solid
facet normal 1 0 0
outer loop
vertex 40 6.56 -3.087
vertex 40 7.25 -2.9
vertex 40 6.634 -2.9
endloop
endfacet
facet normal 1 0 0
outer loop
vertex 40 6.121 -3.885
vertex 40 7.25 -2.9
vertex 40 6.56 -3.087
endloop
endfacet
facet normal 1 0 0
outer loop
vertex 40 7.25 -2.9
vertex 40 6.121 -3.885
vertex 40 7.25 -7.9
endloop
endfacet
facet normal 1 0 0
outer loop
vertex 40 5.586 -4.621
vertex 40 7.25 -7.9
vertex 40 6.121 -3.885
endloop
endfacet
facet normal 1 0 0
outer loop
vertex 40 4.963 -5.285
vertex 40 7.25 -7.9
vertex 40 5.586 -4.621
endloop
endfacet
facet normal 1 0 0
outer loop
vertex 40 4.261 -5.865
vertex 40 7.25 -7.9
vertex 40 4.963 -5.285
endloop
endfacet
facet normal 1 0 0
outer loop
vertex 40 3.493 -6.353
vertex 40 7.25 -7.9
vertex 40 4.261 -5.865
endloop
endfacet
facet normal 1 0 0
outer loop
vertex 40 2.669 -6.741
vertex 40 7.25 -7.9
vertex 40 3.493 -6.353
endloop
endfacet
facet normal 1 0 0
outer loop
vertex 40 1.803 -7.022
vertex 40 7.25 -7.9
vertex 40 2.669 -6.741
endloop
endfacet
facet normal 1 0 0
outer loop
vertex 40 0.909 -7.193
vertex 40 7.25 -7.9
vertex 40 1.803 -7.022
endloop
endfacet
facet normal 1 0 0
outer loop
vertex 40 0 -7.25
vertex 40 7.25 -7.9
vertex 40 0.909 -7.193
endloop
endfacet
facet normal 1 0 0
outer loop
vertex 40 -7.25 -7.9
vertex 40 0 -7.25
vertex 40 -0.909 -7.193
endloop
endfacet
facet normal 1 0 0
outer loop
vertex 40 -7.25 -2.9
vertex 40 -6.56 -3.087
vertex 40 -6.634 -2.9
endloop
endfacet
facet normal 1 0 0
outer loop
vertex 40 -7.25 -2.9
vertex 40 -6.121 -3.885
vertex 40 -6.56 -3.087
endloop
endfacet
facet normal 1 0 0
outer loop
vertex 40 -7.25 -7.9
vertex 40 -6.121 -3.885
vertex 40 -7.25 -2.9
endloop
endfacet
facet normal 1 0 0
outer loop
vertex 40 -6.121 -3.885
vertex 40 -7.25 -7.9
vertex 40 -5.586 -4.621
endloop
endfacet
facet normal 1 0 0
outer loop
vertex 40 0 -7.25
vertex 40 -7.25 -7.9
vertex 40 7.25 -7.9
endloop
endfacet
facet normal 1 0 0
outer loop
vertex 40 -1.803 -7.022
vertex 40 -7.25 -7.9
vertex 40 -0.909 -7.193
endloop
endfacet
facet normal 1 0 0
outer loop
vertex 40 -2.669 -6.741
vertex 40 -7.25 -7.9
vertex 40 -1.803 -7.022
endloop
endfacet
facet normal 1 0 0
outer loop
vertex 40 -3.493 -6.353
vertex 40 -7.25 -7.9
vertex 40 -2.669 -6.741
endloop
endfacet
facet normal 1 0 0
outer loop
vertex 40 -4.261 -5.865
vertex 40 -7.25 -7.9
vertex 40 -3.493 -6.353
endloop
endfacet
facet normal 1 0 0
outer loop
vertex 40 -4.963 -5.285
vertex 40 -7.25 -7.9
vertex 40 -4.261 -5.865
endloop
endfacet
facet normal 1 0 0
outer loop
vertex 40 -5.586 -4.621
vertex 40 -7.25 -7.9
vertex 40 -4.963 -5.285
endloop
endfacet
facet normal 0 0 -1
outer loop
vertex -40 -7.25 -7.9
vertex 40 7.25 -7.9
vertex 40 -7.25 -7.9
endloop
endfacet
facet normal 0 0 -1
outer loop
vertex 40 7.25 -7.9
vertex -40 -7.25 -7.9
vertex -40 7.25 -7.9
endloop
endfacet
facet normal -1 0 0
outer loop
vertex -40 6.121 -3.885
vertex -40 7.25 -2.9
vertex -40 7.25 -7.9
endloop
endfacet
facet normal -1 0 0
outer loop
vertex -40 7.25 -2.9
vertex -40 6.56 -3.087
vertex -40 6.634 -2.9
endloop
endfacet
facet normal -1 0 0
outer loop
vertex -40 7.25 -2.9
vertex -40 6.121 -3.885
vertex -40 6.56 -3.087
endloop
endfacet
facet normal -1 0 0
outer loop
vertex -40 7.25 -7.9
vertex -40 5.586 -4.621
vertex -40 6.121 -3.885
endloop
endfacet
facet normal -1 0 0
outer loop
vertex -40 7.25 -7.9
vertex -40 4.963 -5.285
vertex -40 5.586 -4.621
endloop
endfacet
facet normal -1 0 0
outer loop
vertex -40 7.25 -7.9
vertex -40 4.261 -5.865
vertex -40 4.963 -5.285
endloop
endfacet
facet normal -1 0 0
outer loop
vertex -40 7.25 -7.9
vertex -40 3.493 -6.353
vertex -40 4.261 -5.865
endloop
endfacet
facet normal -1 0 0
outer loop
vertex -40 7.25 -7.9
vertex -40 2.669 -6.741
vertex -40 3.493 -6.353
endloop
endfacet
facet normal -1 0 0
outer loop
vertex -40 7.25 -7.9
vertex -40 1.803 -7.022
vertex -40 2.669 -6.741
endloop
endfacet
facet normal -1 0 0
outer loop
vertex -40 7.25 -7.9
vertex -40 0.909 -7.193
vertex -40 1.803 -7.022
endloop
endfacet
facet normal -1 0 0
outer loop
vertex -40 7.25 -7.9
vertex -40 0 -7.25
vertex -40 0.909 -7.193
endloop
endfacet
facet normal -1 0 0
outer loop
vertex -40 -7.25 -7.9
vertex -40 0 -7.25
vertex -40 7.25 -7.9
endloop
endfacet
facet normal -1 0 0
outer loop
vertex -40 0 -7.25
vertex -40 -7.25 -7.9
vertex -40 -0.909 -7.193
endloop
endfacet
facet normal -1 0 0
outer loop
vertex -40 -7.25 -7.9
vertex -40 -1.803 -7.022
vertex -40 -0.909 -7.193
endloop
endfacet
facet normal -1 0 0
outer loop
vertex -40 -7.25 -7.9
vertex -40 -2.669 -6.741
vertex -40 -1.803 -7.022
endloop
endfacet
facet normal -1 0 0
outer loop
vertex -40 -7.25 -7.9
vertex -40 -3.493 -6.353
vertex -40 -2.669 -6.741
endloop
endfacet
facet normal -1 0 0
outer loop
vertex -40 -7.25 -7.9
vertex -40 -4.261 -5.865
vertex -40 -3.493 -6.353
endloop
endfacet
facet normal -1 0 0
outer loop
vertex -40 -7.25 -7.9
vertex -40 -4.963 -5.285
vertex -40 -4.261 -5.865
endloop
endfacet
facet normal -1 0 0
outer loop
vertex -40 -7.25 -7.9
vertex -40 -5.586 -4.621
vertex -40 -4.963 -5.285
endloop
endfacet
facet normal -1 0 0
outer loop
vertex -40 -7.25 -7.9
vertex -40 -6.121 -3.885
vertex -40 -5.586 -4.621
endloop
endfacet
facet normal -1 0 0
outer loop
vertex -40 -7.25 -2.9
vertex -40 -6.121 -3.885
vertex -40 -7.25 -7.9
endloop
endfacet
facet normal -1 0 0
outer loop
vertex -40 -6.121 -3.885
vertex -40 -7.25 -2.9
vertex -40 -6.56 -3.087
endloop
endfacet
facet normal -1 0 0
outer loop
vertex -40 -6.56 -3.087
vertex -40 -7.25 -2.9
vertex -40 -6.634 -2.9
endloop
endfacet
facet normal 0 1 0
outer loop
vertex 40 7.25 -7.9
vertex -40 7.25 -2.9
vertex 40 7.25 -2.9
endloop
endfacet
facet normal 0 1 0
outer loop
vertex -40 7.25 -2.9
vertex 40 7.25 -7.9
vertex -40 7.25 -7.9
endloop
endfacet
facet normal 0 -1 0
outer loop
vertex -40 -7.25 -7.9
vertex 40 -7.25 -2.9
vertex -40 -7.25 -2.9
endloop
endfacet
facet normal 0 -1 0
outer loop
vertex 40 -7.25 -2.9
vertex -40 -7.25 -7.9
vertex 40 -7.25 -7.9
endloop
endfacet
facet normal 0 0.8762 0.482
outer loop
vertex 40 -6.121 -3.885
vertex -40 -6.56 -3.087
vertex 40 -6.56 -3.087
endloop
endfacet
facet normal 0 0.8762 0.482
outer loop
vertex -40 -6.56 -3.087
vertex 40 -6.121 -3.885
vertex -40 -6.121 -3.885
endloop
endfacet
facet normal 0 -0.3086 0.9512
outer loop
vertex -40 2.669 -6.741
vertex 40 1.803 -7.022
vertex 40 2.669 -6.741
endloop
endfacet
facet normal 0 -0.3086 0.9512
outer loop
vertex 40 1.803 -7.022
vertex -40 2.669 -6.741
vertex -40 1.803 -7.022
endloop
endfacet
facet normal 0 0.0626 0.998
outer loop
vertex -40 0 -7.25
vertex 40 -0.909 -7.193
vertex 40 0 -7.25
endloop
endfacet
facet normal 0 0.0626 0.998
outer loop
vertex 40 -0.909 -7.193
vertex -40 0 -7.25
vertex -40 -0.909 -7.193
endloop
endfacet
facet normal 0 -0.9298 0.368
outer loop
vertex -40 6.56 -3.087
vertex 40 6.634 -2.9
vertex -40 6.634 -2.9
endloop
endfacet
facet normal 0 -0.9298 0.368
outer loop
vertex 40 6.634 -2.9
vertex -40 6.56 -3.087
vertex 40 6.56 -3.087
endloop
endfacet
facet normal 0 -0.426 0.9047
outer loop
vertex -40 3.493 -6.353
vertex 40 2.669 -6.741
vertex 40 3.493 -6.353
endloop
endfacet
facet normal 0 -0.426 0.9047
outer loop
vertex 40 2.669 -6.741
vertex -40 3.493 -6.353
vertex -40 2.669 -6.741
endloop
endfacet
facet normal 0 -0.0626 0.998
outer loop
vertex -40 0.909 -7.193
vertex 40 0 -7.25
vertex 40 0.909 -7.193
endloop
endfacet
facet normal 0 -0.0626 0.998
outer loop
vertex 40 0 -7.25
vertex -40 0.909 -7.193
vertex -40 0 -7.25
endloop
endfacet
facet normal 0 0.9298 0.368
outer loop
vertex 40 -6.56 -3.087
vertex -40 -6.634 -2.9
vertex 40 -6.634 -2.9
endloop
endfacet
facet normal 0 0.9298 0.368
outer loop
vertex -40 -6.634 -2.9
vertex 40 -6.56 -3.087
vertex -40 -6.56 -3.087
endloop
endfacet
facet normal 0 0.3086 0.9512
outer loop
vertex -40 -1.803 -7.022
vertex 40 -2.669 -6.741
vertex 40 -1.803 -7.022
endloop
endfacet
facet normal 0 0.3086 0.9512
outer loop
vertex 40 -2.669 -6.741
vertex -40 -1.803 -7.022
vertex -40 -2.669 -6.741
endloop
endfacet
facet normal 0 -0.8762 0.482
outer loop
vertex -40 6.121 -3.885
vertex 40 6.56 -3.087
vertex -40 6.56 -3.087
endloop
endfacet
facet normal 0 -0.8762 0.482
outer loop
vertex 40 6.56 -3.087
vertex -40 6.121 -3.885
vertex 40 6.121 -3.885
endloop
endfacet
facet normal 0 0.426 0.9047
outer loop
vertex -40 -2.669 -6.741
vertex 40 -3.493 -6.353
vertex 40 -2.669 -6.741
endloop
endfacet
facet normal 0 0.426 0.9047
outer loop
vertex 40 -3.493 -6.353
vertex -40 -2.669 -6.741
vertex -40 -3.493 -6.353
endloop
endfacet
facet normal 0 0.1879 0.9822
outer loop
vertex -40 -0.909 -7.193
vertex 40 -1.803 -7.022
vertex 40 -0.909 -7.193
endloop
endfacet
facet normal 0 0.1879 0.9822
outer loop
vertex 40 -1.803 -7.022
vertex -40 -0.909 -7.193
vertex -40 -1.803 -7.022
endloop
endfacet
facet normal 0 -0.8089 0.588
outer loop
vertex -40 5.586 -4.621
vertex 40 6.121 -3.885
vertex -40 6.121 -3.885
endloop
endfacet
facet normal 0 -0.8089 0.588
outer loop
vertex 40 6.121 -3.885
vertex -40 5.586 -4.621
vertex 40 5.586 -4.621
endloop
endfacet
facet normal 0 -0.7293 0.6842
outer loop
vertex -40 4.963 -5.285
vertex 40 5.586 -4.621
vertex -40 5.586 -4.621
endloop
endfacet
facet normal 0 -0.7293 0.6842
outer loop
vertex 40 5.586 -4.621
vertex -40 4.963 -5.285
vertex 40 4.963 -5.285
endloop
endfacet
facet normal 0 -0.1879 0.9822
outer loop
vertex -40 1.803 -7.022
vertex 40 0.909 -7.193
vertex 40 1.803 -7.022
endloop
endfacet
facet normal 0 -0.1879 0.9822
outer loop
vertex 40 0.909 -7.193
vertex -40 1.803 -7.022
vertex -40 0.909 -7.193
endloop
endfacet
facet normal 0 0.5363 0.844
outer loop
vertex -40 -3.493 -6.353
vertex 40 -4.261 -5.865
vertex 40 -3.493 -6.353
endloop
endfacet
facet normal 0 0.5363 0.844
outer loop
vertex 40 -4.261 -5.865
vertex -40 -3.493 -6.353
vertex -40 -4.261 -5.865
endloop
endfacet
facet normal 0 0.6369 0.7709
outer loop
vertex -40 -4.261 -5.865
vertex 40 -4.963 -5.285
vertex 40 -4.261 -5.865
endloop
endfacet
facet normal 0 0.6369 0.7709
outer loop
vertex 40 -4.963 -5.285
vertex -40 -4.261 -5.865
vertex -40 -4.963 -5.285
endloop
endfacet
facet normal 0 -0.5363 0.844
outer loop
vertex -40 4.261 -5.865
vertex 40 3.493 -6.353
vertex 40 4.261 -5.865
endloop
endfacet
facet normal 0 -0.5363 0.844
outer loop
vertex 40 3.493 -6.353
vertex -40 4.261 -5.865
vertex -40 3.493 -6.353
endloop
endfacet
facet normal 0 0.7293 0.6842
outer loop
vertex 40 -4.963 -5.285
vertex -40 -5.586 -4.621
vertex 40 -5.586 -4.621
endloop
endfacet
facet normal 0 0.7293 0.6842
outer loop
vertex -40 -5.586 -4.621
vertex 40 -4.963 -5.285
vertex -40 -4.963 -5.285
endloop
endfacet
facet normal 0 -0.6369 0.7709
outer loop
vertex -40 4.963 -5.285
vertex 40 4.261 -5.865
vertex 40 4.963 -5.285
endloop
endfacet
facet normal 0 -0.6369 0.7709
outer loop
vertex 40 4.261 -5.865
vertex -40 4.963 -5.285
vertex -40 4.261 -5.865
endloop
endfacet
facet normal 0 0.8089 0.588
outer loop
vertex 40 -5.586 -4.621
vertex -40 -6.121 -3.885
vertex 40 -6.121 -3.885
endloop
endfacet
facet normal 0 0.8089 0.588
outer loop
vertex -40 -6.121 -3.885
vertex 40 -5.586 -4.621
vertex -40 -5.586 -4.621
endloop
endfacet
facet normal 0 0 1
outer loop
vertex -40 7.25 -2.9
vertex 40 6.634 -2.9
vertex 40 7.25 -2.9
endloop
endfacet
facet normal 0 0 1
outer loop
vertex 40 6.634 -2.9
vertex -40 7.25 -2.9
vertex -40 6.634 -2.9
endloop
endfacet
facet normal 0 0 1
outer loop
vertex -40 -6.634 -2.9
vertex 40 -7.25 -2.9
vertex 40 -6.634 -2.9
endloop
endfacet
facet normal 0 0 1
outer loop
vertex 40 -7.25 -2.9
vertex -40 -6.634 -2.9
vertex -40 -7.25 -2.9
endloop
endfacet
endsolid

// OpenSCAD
// file: scad-utils/mirror.scad
// Laser Tunnel -- Angled Mirror Holder
// Adrian McCarthy 2022

// A larger angle makes a wider cone of light. (degrees)
Angle = 5; // [3:1:20]

// The mirror should not be wider than the hub of the fan. (mm)
Mirror_Diameter = 25.4; // [20:0.2:27]

// The mirror should be thin and light. (mm)
Mirror_Thickness = 1.75; // [1:0.25:2]

// Some dimensions may be optimized for your printer's nozzle size, but the default value should work for most. (mm)
Nozzle_Diameter = 0.4;  // [0.1:0.1:0.8]

module angled_mirror_holder(angle=5, mirror_d=25.4, mirror_th=1.75, nozzle_d=0.4) {
    h = mirror_d;
    inner_d = mirror_d + nozzle_d;
    outer_d = inner_d + 2;
    box = sqrt(2)*outer_d;
    intersection() {
        r = inner_d/2;
        translate([r, 0, 0]) rotate([0, angle, 0]) translate([-r, 0, 0])
        difference() {
            translate([0, 0, mirror_th-h]) cylinder(d=outer_d, h=h);
            translate([0, 0, 0.1]) cylinder(d=inner_d, h=h);
        }

        translate([-box/2, -box/2, 0]) cube(box);
    }
}

angled_mirror_holder(Angle, Mirror_Diameter, Mirror_Thickness, Nozzle_Diameter, $fn=92);
// file: scad-utils/morphology.scad
// Copyright (c) 2013 Oskar Linde. All rights reserved.
// License: BSD
//
// This library contains basic 2D morphology operations
//
// outset(d=1)            - creates a polygon at an offset d outside a 2D shape
// inset(d=1)             - creates a polygon at an offset d inside a 2D shape
// fillet(r=1)            - adds fillets of radius r to all concave corners of a 2D shape
// rounding(r=1)          - adds rounding to all convex corners of a 2D shape
// shell(d,center=false)  - makes a shell of width d along the edge of a 2D shape
//                        - positive values of d places the shell on the outside
//                        - negative values of d places the shell on the inside
//                        - center=true and positive d places the shell centered on the edge

module outset(d=1) {
	// Bug workaround for older OpenSCAD versions
	if (version_num() < 20130424) render() outset_extruded(d) children();
	else minkowski() {
		circle(r=d);
		children();
	}
}

module outset_extruded(d=1) {
   projection(cut=true) minkowski() {
        cylinder(r=d);
        linear_extrude(center=true) children();
   }
}

module inset(d=1) {
	 render() inverse() outset(d=d) inverse() children();
}

module fillet(r=1) {
	inset(d=r) render() outset(d=r) children();
}

module rounding(r=1) {
	outset(d=r) inset(d=r) children();
}

module shell(d,center=false) {
	if (center && d > 0) {
		difference() {
			outset(d=d/2) children();
			inset(d=d/2) children();
		}
	}
	if (!center && d > 0) {
		difference() {
			outset(d=d) children();
			children();
		}
	}
	if (!center && d < 0) {
		difference() {
			children();
			inset(d=-d) children();
		}
	}
	if (d == 0) children();
}


// Below are for internal use only

module inverse() {
	difference() {
		square(1e5,center=true);
		children();
	}
}


// TEST CODE

use <mirror.scad>

module arrow(l=1,w=.6,t=0.15) {
	mirror_y() polygon([[0,0],[l,0],[l-w/2,w/2],[l-w/2-sqrt(2)*t,w/2],[l-t/2-sqrt(2)*t,t/2],[0,t/2]]);
}

module shape() {
	polygon([[0,0],[1,0],[1.5,1],[2.5,1],[2,-1],[0,-1]]);
}

if(0) assign($fn=32) {

	for (p = [0:10*3-1]) assign(o=floor(p/3)) {
		translate([(p%3)*2.5,-o*3]) {
			//%if (p % 3 == 1) translate([0,0,1]) shape();
			if (p % 3 == 0) shape();
			if (p % 3 == 1) translate([0.6,0]) arrow();
			if (p % 3 == 2) {
				if (o == 0) inset(d=0.3) shape();
				if (o == 1) outset(d=0.3) shape();
				if (o == 2) rounding(r=0.3) shape();
				if (o == 3) fillet(r=0.3) shape();
				if (o == 4) shell(d=0.3) shape();
				if (o == 5) shell(d=-0.3) shape();
				if (o == 6) shell(d=0.3,center=true) shape();
				if (o == 7) rounding(r=0.3) fillet(r=0.3) shape();
				if (o == 8) shell(d=0.3,center=true) fillet(r=0.3) rounding(r=0.3) shape();
				if (o == 9) shell(d=-0.3) fillet(r=0.3) rounding(r=0.3) shape();
			}
		}
	}
}
// file: modules/picture_frame.scad
include <../scad-utils/morphology.scad>

PICTURE_FRAME_WIDTH=20;
PICTURE_FRAME_INNER_EDGE_WIDTH=7;
PICTURE_FRAME_WALL_WIDTH=PICTURE_FRAME_WIDTH - PICTURE_FRAME_INNER_EDGE_WIDTH;

PICTURE_FRAME_INNER_SPACE=[158, 130, 22];
PICTURE_FRAME_BODY=[PICTURE_FRAME_INNER_SPACE.x + PICTURE_FRAME_WALL_WIDTH*2, PICTURE_FRAME_INNER_SPACE.y + PICTURE_FRAME_WALL_WIDTH*2, 29];

PICTURE_FRAME_FRONT_LAYERS_Z=2 + 1.2; // Glass + Sheet
PICTURE_FRAME_BACK_PANEL_Z=3;
PICTURE_FRAME_SHEET_WINDOW=[114, 86];

PICTURE_FRAME_WINDOW_Z=PICTURE_FRAME_BODY.z - PICTURE_FRAME_INNER_SPACE.z;
PICTURE_FRAME_INNER_SPACE_AVAILABLE_Z=PICTURE_FRAME_INNER_SPACE.z - (PICTURE_FRAME_FRONT_LAYERS_Z + PICTURE_FRAME_BACK_PANEL_Z);

echo(str("PICTURE_FRAME_INNER_SPACE_AVAILABLE_Z = ", PICTURE_FRAME_INNER_SPACE_AVAILABLE_Z));


module translate_to_picture_frame_available_inner_space_zplane(as_origin_plane=false){
  translate([0, 0, (PICTURE_FRAME_WINDOW_Z + PICTURE_FRAME_FRONT_LAYERS_Z) * (as_origin_plane ? -1 : 1) ])
  children();
}

module picture_frame_body() {
  difference(){
    translate([0, 0, PICTURE_FRAME_BODY.z/2])
    cube(size=PICTURE_FRAME_BODY, center=true);

    // window
    translate([0, 0, -0.01])
    linear_extrude(height=10 + 0.01, center=!true, convexity=10, twist=0)
    inset(d=PICTURE_FRAME_WIDTH)
    square(size=[PICTURE_FRAME_BODY.x, PICTURE_FRAME_BODY.y], center=true);

    // inner space
    translate([0, 0, PICTURE_FRAME_WINDOW_Z + 0.01])
    translate([0, 0, PICTURE_FRAME_INNER_SPACE.z/2])
    cube(size=PICTURE_FRAME_INNER_SPACE, center=true);
  }
}

module picture_frame_front_layers(){
  color("blue", 0.1)
  translate([0, 0, PICTURE_FRAME_WINDOW_Z])
  linear_extrude(height=PICTURE_FRAME_FRONT_LAYERS_Z, center=!true, convexity=10, twist=0)
  difference(){
    square(size=[PICTURE_FRAME_INNER_SPACE.x, PICTURE_FRAME_INNER_SPACE.y], center=true);

    // Sheet window
    square(size=[PICTURE_FRAME_SHEET_WINDOW.x, PICTURE_FRAME_SHEET_WINDOW.y], center=true);
  }
}

module picture_frame_back_panel(){
  color("yellow", 0.3)
  translate([0, 0, PICTURE_FRAME_BODY.z - PICTURE_FRAME_BACK_PANEL_Z])
  linear_extrude(height=PICTURE_FRAME_BACK_PANEL_Z, center=!true, convexity=10, twist=0)
  square(size=[PICTURE_FRAME_INNER_SPACE.x, PICTURE_FRAME_INNER_SPACE.y], center=true);
}
// main file
include <modules/picture_frame.scad>

$fn=50;


module smp7c_battery_spacer_body() {
  difference(){
    cube(size=[80, 14.5, PICTURE_FRAME_INNER_SPACE_AVAILABLE_Z], center=true);

    // Space for batteries
    rotate([0, 90, 0])
    cylinder(d=14.5, h=80 + 1, center=true);

    // Slice it
    translate([0, 0, 5])
    cube(size=[80 + 1, 14.5 + 1, PICTURE_FRAME_INNER_SPACE_AVAILABLE_Z], center=true);
  }
}

smp7c_battery_spacer_body();
